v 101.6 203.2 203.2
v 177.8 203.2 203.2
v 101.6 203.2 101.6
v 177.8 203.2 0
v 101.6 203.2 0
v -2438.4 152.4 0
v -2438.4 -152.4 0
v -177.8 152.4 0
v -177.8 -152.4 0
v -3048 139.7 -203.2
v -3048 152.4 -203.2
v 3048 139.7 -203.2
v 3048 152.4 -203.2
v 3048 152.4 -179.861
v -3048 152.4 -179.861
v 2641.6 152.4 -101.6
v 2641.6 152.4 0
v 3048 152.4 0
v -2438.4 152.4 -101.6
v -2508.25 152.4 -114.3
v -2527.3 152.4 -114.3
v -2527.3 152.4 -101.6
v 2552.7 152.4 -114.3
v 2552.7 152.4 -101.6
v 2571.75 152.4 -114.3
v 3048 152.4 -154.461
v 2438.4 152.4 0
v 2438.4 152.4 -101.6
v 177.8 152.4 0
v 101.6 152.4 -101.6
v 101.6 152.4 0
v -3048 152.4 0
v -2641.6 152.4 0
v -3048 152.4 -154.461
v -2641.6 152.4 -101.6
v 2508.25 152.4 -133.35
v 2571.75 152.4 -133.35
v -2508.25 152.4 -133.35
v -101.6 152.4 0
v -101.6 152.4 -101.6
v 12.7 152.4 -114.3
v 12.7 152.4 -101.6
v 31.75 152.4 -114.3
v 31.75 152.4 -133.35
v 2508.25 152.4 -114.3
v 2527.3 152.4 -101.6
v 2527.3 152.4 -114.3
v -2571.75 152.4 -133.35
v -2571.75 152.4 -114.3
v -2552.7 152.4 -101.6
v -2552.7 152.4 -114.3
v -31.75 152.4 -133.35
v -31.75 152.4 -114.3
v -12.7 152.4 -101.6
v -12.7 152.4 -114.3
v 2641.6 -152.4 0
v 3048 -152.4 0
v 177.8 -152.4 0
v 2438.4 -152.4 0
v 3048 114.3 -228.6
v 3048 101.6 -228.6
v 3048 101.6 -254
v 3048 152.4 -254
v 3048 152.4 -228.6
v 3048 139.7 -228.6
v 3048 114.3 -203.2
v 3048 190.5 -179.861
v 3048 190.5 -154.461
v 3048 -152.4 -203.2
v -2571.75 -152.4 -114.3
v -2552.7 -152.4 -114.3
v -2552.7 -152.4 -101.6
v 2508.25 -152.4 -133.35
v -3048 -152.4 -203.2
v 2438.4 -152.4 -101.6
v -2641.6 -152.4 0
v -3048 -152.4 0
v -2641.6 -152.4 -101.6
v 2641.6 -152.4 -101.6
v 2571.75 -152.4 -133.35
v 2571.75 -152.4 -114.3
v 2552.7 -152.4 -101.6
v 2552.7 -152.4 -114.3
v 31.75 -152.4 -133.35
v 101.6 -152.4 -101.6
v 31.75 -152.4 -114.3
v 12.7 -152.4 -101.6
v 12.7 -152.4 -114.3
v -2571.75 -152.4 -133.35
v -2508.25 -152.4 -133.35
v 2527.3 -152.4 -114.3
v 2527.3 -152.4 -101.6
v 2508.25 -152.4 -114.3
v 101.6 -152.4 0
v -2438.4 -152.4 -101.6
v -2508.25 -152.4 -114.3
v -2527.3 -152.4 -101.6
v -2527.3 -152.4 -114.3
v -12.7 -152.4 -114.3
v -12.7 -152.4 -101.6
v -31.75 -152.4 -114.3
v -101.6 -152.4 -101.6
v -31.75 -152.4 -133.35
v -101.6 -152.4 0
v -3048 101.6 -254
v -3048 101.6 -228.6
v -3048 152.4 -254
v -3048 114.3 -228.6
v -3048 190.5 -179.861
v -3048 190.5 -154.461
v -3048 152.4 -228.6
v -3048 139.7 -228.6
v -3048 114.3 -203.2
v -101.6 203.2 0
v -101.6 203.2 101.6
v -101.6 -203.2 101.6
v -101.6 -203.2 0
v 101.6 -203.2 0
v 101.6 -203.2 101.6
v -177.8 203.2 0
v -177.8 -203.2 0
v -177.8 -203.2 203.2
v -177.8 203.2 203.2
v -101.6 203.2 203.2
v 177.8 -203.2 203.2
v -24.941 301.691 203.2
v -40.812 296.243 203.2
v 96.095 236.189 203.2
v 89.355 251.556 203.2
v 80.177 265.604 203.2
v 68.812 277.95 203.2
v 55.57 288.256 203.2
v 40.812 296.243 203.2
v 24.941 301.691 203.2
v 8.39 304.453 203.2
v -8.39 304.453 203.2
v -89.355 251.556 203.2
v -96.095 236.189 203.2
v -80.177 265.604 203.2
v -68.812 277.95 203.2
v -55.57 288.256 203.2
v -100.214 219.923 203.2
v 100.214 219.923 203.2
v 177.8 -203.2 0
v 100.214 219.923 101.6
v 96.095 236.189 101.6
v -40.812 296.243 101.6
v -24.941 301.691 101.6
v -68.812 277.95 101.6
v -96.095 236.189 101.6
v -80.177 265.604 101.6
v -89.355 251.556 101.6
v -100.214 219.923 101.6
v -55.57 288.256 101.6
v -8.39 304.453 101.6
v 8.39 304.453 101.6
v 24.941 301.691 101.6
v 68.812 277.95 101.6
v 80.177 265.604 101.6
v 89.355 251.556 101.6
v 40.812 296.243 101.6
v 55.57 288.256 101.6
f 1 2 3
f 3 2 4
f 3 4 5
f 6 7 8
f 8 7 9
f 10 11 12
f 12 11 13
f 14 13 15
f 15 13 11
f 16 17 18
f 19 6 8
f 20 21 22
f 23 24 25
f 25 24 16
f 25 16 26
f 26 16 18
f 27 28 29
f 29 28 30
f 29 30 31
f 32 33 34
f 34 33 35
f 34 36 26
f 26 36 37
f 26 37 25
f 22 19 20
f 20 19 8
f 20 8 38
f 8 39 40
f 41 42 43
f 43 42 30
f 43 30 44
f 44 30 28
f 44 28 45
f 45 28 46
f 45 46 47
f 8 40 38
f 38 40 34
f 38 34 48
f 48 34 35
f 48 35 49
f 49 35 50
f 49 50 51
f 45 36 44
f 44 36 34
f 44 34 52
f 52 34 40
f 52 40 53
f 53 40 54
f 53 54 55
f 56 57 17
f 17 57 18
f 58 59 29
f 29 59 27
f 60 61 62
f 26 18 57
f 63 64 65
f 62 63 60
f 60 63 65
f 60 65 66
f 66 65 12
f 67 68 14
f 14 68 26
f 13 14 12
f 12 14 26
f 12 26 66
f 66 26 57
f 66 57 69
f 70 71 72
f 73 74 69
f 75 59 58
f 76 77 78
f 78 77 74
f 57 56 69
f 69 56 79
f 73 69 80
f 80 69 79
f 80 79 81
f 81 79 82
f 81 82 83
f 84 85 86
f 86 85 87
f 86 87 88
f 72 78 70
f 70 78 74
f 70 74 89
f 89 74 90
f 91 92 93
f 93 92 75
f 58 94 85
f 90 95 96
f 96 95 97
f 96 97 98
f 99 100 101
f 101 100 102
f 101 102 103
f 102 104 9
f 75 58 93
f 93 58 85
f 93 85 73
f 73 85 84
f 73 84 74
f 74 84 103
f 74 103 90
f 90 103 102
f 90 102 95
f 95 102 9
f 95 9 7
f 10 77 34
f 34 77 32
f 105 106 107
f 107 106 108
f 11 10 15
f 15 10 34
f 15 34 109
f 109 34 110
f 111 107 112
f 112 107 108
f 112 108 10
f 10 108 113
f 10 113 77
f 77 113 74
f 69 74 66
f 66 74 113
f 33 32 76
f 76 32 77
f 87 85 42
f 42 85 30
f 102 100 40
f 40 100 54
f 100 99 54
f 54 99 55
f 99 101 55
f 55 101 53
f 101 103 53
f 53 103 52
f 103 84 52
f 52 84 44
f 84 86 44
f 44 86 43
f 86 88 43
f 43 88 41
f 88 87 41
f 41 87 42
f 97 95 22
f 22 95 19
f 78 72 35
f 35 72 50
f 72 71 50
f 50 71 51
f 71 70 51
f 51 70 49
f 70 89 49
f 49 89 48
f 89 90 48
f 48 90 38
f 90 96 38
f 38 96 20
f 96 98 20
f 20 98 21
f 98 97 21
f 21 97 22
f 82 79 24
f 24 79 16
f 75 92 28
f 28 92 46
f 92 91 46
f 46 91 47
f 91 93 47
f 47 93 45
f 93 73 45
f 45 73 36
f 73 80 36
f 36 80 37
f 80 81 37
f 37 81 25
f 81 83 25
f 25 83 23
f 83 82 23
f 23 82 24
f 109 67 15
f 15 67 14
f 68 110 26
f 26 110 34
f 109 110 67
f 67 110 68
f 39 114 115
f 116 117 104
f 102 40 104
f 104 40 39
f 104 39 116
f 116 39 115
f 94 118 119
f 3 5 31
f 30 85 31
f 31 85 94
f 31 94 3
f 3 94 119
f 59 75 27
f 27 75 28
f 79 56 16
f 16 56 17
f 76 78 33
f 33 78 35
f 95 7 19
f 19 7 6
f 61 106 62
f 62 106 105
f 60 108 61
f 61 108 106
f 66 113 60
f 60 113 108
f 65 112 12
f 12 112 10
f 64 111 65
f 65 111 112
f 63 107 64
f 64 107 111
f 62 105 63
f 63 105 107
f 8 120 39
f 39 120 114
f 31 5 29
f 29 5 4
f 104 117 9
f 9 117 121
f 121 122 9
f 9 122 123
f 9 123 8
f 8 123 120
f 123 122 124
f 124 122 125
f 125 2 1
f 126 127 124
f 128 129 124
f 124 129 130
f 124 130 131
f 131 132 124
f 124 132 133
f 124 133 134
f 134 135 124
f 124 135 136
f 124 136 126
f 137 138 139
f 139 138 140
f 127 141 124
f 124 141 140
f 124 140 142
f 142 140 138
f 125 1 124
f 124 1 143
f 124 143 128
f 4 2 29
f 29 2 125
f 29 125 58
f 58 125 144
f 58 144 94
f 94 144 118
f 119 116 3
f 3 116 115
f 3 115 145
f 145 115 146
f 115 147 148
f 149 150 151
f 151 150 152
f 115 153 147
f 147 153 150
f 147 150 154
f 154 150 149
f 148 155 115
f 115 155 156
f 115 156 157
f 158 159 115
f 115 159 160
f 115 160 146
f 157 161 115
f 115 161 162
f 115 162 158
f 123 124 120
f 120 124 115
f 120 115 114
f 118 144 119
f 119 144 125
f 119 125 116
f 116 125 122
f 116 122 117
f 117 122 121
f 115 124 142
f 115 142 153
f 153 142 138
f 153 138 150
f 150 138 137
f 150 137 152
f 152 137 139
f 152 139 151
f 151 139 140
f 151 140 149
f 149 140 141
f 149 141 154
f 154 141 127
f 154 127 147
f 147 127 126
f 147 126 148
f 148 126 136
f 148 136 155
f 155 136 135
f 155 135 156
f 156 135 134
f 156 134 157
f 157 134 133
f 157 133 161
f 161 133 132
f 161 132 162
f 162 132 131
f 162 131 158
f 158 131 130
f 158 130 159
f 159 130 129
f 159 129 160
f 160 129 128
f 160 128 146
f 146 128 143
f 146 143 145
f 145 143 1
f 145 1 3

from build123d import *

# Parameters (mm, degrees)
SKETCH2_W                = 6096
SKETCH2_H                = 304.8
BOSS_EXTRUDE1_DEPTH      = 203.2
CUT_EXTRUDE1_DEPTH       = 305.8
LPATTERN1_COUNT          = 2
LPATTERN1_PITCH          = 2540
LPATTERN1_COL_COUNT      = 2
LPATTERN1_COL_PITCH      = 2540
SKETCH5_W                = 6096
SKETCH5_H                = 25.4
BOSS_EXTRUDE2_DEPTH      = 38.1
SKETCH7_W                = 203.2
SKETCH7_H                = 101.6
CUT_EXTRUDE2_DEPTH       = 305.8
LPATTERN2_COUNT          = 2
LPATTERN2_PITCH          = 2540
LPATTERN2_COL_COUNT      = 2
LPATTERN2_COL_PITCH      = 2540
BOSS_EXTRUDE4_DEPTH      = 6096
BOSS_EXTRUDE5_DEPTH      = 50.8
BOSS_EXTRUDE5_DEPTH_BACK = 355.6
BOSS_EXTRUDE6_DEPTH      = 101.6


with BuildPart() as part:
    # Sketch2 → Boss-Extrude1 (new body)
    with BuildSketch(Plane.XY):
        Rectangle(SKETCH2_W, SKETCH2_H)
    extrude(amount=-BOSS_EXTRUDE1_DEPTH)

    # Sketch4 → Cut-Extrude1 (cut, through all)
    with BuildSketch(Plane(origin=(0, 152.4, 0), x_dir=(1, 0, 0), z_dir=(0, 1, 0))):
        Polygon((-75.851698824, 0), (75.851698824, 0), (75.851698824, 101.6), (12.7, 101.6), (12.7, 114.3), (31.75, 114.3), (31.75, 133.35), (-31.75, 133.35), (-31.75, 114.3), (-12.7, 114.3), (-12.7, 101.6), (-75.851698824, 101.6), align=None)
    cut_extrude1 = extrude(amount=-CUT_EXTRUDE1_DEPTH, mode=Mode.SUBTRACT)

    # LPattern1: Cut-Extrude1 ×2
    with Locations(*[(-i * LPATTERN1_PITCH, 0, 0) for i in range(1, LPATTERN1_COUNT)]):
        add(cut_extrude1, mode=Mode.SUBTRACT)

    # LPattern1 col: Cut-Extrude1 ×2
    with Locations(*[(i * LPATTERN1_COL_PITCH, 0, 0) for i in range(1, LPATTERN1_COL_COUNT)]):
        add(cut_extrude1, mode=Mode.SUBTRACT)

    # Sketch5 → Boss-Extrude2 (add)
    with BuildSketch(Plane(origin=(0, 152.4, 0), x_dir=(1, 0, 0), z_dir=(0, 1, 0))):
        with Locations((0, 167.160624532)):
            Rectangle(SKETCH5_W, SKETCH5_H)
    extrude(amount=BOSS_EXTRUDE2_DEPTH)

    # Sketch7 → Cut-Extrude2 (cut, through all)
    with BuildSketch(Plane(origin=(0, 152.4, 0), x_dir=(1, 0, 0), z_dir=(0, 1, 0))):
        with Locations((0, 50.8)):
            Rectangle(SKETCH7_W, SKETCH7_H)
    cut_extrude2 = extrude(amount=-CUT_EXTRUDE2_DEPTH, mode=Mode.SUBTRACT)

    # LPattern2: Cut-Extrude2 ×2
    with Locations(*[(-i * LPATTERN2_PITCH, 0, 0) for i in range(1, LPATTERN2_COUNT)]):
        add(cut_extrude2, mode=Mode.SUBTRACT)

    # LPattern2 col: Cut-Extrude2 ×2
    with Locations(*[(i * LPATTERN2_COL_PITCH, 0, 0) for i in range(1, LPATTERN2_COL_COUNT)]):
        add(cut_extrude2, mode=Mode.SUBTRACT)

    # Sketch9 → Boss-Extrude4 (add)
    with BuildSketch(Plane.ZY.offset(3048)):
        Polygon((-228.6, 152.4), (-228.6, 139.7), (-203.2, 139.7), (-203.2, 114.3), (-228.6, 114.3), (-228.6, 101.6), (-254, 101.6), (-254, 152.4), align=None)
    extrude(amount=-BOSS_EXTRUDE4_DEPTH)

    # Sketch10 → Boss-Extrude5 (add, two sides)
    with BuildSketch(Plane(origin=(0, 152.4, 0), x_dir=(1, 0, 0), z_dir=(0, 1, 0))) as boss_extrude5_sk:
        Polygon((-177.8, 0), (-101.6, 0), (-101.6, -101.6), (101.6, -101.6), (101.6, 0), (177.8, 0), (177.8, -203.2), (-177.8, -203.2), align=None)
    extrude(amount=BOSS_EXTRUDE5_DEPTH)
    extrude(boss_extrude5_sk.sketch, amount=-BOSS_EXTRUDE5_DEPTH_BACK)

    # Sketch11 → Boss-Extrude6 (add)
    with BuildSketch(Plane.XY.offset(203.2)):
        with BuildLine():
            Line((-101.6, 203.2), (101.6, 203.2))
            ThreePointArc((101.6, 203.2), (0, 304.8), (-101.6, 203.2))
        make_face()
    extrude(amount=-BOSS_EXTRUDE6_DEPTH)


solid = part.part
